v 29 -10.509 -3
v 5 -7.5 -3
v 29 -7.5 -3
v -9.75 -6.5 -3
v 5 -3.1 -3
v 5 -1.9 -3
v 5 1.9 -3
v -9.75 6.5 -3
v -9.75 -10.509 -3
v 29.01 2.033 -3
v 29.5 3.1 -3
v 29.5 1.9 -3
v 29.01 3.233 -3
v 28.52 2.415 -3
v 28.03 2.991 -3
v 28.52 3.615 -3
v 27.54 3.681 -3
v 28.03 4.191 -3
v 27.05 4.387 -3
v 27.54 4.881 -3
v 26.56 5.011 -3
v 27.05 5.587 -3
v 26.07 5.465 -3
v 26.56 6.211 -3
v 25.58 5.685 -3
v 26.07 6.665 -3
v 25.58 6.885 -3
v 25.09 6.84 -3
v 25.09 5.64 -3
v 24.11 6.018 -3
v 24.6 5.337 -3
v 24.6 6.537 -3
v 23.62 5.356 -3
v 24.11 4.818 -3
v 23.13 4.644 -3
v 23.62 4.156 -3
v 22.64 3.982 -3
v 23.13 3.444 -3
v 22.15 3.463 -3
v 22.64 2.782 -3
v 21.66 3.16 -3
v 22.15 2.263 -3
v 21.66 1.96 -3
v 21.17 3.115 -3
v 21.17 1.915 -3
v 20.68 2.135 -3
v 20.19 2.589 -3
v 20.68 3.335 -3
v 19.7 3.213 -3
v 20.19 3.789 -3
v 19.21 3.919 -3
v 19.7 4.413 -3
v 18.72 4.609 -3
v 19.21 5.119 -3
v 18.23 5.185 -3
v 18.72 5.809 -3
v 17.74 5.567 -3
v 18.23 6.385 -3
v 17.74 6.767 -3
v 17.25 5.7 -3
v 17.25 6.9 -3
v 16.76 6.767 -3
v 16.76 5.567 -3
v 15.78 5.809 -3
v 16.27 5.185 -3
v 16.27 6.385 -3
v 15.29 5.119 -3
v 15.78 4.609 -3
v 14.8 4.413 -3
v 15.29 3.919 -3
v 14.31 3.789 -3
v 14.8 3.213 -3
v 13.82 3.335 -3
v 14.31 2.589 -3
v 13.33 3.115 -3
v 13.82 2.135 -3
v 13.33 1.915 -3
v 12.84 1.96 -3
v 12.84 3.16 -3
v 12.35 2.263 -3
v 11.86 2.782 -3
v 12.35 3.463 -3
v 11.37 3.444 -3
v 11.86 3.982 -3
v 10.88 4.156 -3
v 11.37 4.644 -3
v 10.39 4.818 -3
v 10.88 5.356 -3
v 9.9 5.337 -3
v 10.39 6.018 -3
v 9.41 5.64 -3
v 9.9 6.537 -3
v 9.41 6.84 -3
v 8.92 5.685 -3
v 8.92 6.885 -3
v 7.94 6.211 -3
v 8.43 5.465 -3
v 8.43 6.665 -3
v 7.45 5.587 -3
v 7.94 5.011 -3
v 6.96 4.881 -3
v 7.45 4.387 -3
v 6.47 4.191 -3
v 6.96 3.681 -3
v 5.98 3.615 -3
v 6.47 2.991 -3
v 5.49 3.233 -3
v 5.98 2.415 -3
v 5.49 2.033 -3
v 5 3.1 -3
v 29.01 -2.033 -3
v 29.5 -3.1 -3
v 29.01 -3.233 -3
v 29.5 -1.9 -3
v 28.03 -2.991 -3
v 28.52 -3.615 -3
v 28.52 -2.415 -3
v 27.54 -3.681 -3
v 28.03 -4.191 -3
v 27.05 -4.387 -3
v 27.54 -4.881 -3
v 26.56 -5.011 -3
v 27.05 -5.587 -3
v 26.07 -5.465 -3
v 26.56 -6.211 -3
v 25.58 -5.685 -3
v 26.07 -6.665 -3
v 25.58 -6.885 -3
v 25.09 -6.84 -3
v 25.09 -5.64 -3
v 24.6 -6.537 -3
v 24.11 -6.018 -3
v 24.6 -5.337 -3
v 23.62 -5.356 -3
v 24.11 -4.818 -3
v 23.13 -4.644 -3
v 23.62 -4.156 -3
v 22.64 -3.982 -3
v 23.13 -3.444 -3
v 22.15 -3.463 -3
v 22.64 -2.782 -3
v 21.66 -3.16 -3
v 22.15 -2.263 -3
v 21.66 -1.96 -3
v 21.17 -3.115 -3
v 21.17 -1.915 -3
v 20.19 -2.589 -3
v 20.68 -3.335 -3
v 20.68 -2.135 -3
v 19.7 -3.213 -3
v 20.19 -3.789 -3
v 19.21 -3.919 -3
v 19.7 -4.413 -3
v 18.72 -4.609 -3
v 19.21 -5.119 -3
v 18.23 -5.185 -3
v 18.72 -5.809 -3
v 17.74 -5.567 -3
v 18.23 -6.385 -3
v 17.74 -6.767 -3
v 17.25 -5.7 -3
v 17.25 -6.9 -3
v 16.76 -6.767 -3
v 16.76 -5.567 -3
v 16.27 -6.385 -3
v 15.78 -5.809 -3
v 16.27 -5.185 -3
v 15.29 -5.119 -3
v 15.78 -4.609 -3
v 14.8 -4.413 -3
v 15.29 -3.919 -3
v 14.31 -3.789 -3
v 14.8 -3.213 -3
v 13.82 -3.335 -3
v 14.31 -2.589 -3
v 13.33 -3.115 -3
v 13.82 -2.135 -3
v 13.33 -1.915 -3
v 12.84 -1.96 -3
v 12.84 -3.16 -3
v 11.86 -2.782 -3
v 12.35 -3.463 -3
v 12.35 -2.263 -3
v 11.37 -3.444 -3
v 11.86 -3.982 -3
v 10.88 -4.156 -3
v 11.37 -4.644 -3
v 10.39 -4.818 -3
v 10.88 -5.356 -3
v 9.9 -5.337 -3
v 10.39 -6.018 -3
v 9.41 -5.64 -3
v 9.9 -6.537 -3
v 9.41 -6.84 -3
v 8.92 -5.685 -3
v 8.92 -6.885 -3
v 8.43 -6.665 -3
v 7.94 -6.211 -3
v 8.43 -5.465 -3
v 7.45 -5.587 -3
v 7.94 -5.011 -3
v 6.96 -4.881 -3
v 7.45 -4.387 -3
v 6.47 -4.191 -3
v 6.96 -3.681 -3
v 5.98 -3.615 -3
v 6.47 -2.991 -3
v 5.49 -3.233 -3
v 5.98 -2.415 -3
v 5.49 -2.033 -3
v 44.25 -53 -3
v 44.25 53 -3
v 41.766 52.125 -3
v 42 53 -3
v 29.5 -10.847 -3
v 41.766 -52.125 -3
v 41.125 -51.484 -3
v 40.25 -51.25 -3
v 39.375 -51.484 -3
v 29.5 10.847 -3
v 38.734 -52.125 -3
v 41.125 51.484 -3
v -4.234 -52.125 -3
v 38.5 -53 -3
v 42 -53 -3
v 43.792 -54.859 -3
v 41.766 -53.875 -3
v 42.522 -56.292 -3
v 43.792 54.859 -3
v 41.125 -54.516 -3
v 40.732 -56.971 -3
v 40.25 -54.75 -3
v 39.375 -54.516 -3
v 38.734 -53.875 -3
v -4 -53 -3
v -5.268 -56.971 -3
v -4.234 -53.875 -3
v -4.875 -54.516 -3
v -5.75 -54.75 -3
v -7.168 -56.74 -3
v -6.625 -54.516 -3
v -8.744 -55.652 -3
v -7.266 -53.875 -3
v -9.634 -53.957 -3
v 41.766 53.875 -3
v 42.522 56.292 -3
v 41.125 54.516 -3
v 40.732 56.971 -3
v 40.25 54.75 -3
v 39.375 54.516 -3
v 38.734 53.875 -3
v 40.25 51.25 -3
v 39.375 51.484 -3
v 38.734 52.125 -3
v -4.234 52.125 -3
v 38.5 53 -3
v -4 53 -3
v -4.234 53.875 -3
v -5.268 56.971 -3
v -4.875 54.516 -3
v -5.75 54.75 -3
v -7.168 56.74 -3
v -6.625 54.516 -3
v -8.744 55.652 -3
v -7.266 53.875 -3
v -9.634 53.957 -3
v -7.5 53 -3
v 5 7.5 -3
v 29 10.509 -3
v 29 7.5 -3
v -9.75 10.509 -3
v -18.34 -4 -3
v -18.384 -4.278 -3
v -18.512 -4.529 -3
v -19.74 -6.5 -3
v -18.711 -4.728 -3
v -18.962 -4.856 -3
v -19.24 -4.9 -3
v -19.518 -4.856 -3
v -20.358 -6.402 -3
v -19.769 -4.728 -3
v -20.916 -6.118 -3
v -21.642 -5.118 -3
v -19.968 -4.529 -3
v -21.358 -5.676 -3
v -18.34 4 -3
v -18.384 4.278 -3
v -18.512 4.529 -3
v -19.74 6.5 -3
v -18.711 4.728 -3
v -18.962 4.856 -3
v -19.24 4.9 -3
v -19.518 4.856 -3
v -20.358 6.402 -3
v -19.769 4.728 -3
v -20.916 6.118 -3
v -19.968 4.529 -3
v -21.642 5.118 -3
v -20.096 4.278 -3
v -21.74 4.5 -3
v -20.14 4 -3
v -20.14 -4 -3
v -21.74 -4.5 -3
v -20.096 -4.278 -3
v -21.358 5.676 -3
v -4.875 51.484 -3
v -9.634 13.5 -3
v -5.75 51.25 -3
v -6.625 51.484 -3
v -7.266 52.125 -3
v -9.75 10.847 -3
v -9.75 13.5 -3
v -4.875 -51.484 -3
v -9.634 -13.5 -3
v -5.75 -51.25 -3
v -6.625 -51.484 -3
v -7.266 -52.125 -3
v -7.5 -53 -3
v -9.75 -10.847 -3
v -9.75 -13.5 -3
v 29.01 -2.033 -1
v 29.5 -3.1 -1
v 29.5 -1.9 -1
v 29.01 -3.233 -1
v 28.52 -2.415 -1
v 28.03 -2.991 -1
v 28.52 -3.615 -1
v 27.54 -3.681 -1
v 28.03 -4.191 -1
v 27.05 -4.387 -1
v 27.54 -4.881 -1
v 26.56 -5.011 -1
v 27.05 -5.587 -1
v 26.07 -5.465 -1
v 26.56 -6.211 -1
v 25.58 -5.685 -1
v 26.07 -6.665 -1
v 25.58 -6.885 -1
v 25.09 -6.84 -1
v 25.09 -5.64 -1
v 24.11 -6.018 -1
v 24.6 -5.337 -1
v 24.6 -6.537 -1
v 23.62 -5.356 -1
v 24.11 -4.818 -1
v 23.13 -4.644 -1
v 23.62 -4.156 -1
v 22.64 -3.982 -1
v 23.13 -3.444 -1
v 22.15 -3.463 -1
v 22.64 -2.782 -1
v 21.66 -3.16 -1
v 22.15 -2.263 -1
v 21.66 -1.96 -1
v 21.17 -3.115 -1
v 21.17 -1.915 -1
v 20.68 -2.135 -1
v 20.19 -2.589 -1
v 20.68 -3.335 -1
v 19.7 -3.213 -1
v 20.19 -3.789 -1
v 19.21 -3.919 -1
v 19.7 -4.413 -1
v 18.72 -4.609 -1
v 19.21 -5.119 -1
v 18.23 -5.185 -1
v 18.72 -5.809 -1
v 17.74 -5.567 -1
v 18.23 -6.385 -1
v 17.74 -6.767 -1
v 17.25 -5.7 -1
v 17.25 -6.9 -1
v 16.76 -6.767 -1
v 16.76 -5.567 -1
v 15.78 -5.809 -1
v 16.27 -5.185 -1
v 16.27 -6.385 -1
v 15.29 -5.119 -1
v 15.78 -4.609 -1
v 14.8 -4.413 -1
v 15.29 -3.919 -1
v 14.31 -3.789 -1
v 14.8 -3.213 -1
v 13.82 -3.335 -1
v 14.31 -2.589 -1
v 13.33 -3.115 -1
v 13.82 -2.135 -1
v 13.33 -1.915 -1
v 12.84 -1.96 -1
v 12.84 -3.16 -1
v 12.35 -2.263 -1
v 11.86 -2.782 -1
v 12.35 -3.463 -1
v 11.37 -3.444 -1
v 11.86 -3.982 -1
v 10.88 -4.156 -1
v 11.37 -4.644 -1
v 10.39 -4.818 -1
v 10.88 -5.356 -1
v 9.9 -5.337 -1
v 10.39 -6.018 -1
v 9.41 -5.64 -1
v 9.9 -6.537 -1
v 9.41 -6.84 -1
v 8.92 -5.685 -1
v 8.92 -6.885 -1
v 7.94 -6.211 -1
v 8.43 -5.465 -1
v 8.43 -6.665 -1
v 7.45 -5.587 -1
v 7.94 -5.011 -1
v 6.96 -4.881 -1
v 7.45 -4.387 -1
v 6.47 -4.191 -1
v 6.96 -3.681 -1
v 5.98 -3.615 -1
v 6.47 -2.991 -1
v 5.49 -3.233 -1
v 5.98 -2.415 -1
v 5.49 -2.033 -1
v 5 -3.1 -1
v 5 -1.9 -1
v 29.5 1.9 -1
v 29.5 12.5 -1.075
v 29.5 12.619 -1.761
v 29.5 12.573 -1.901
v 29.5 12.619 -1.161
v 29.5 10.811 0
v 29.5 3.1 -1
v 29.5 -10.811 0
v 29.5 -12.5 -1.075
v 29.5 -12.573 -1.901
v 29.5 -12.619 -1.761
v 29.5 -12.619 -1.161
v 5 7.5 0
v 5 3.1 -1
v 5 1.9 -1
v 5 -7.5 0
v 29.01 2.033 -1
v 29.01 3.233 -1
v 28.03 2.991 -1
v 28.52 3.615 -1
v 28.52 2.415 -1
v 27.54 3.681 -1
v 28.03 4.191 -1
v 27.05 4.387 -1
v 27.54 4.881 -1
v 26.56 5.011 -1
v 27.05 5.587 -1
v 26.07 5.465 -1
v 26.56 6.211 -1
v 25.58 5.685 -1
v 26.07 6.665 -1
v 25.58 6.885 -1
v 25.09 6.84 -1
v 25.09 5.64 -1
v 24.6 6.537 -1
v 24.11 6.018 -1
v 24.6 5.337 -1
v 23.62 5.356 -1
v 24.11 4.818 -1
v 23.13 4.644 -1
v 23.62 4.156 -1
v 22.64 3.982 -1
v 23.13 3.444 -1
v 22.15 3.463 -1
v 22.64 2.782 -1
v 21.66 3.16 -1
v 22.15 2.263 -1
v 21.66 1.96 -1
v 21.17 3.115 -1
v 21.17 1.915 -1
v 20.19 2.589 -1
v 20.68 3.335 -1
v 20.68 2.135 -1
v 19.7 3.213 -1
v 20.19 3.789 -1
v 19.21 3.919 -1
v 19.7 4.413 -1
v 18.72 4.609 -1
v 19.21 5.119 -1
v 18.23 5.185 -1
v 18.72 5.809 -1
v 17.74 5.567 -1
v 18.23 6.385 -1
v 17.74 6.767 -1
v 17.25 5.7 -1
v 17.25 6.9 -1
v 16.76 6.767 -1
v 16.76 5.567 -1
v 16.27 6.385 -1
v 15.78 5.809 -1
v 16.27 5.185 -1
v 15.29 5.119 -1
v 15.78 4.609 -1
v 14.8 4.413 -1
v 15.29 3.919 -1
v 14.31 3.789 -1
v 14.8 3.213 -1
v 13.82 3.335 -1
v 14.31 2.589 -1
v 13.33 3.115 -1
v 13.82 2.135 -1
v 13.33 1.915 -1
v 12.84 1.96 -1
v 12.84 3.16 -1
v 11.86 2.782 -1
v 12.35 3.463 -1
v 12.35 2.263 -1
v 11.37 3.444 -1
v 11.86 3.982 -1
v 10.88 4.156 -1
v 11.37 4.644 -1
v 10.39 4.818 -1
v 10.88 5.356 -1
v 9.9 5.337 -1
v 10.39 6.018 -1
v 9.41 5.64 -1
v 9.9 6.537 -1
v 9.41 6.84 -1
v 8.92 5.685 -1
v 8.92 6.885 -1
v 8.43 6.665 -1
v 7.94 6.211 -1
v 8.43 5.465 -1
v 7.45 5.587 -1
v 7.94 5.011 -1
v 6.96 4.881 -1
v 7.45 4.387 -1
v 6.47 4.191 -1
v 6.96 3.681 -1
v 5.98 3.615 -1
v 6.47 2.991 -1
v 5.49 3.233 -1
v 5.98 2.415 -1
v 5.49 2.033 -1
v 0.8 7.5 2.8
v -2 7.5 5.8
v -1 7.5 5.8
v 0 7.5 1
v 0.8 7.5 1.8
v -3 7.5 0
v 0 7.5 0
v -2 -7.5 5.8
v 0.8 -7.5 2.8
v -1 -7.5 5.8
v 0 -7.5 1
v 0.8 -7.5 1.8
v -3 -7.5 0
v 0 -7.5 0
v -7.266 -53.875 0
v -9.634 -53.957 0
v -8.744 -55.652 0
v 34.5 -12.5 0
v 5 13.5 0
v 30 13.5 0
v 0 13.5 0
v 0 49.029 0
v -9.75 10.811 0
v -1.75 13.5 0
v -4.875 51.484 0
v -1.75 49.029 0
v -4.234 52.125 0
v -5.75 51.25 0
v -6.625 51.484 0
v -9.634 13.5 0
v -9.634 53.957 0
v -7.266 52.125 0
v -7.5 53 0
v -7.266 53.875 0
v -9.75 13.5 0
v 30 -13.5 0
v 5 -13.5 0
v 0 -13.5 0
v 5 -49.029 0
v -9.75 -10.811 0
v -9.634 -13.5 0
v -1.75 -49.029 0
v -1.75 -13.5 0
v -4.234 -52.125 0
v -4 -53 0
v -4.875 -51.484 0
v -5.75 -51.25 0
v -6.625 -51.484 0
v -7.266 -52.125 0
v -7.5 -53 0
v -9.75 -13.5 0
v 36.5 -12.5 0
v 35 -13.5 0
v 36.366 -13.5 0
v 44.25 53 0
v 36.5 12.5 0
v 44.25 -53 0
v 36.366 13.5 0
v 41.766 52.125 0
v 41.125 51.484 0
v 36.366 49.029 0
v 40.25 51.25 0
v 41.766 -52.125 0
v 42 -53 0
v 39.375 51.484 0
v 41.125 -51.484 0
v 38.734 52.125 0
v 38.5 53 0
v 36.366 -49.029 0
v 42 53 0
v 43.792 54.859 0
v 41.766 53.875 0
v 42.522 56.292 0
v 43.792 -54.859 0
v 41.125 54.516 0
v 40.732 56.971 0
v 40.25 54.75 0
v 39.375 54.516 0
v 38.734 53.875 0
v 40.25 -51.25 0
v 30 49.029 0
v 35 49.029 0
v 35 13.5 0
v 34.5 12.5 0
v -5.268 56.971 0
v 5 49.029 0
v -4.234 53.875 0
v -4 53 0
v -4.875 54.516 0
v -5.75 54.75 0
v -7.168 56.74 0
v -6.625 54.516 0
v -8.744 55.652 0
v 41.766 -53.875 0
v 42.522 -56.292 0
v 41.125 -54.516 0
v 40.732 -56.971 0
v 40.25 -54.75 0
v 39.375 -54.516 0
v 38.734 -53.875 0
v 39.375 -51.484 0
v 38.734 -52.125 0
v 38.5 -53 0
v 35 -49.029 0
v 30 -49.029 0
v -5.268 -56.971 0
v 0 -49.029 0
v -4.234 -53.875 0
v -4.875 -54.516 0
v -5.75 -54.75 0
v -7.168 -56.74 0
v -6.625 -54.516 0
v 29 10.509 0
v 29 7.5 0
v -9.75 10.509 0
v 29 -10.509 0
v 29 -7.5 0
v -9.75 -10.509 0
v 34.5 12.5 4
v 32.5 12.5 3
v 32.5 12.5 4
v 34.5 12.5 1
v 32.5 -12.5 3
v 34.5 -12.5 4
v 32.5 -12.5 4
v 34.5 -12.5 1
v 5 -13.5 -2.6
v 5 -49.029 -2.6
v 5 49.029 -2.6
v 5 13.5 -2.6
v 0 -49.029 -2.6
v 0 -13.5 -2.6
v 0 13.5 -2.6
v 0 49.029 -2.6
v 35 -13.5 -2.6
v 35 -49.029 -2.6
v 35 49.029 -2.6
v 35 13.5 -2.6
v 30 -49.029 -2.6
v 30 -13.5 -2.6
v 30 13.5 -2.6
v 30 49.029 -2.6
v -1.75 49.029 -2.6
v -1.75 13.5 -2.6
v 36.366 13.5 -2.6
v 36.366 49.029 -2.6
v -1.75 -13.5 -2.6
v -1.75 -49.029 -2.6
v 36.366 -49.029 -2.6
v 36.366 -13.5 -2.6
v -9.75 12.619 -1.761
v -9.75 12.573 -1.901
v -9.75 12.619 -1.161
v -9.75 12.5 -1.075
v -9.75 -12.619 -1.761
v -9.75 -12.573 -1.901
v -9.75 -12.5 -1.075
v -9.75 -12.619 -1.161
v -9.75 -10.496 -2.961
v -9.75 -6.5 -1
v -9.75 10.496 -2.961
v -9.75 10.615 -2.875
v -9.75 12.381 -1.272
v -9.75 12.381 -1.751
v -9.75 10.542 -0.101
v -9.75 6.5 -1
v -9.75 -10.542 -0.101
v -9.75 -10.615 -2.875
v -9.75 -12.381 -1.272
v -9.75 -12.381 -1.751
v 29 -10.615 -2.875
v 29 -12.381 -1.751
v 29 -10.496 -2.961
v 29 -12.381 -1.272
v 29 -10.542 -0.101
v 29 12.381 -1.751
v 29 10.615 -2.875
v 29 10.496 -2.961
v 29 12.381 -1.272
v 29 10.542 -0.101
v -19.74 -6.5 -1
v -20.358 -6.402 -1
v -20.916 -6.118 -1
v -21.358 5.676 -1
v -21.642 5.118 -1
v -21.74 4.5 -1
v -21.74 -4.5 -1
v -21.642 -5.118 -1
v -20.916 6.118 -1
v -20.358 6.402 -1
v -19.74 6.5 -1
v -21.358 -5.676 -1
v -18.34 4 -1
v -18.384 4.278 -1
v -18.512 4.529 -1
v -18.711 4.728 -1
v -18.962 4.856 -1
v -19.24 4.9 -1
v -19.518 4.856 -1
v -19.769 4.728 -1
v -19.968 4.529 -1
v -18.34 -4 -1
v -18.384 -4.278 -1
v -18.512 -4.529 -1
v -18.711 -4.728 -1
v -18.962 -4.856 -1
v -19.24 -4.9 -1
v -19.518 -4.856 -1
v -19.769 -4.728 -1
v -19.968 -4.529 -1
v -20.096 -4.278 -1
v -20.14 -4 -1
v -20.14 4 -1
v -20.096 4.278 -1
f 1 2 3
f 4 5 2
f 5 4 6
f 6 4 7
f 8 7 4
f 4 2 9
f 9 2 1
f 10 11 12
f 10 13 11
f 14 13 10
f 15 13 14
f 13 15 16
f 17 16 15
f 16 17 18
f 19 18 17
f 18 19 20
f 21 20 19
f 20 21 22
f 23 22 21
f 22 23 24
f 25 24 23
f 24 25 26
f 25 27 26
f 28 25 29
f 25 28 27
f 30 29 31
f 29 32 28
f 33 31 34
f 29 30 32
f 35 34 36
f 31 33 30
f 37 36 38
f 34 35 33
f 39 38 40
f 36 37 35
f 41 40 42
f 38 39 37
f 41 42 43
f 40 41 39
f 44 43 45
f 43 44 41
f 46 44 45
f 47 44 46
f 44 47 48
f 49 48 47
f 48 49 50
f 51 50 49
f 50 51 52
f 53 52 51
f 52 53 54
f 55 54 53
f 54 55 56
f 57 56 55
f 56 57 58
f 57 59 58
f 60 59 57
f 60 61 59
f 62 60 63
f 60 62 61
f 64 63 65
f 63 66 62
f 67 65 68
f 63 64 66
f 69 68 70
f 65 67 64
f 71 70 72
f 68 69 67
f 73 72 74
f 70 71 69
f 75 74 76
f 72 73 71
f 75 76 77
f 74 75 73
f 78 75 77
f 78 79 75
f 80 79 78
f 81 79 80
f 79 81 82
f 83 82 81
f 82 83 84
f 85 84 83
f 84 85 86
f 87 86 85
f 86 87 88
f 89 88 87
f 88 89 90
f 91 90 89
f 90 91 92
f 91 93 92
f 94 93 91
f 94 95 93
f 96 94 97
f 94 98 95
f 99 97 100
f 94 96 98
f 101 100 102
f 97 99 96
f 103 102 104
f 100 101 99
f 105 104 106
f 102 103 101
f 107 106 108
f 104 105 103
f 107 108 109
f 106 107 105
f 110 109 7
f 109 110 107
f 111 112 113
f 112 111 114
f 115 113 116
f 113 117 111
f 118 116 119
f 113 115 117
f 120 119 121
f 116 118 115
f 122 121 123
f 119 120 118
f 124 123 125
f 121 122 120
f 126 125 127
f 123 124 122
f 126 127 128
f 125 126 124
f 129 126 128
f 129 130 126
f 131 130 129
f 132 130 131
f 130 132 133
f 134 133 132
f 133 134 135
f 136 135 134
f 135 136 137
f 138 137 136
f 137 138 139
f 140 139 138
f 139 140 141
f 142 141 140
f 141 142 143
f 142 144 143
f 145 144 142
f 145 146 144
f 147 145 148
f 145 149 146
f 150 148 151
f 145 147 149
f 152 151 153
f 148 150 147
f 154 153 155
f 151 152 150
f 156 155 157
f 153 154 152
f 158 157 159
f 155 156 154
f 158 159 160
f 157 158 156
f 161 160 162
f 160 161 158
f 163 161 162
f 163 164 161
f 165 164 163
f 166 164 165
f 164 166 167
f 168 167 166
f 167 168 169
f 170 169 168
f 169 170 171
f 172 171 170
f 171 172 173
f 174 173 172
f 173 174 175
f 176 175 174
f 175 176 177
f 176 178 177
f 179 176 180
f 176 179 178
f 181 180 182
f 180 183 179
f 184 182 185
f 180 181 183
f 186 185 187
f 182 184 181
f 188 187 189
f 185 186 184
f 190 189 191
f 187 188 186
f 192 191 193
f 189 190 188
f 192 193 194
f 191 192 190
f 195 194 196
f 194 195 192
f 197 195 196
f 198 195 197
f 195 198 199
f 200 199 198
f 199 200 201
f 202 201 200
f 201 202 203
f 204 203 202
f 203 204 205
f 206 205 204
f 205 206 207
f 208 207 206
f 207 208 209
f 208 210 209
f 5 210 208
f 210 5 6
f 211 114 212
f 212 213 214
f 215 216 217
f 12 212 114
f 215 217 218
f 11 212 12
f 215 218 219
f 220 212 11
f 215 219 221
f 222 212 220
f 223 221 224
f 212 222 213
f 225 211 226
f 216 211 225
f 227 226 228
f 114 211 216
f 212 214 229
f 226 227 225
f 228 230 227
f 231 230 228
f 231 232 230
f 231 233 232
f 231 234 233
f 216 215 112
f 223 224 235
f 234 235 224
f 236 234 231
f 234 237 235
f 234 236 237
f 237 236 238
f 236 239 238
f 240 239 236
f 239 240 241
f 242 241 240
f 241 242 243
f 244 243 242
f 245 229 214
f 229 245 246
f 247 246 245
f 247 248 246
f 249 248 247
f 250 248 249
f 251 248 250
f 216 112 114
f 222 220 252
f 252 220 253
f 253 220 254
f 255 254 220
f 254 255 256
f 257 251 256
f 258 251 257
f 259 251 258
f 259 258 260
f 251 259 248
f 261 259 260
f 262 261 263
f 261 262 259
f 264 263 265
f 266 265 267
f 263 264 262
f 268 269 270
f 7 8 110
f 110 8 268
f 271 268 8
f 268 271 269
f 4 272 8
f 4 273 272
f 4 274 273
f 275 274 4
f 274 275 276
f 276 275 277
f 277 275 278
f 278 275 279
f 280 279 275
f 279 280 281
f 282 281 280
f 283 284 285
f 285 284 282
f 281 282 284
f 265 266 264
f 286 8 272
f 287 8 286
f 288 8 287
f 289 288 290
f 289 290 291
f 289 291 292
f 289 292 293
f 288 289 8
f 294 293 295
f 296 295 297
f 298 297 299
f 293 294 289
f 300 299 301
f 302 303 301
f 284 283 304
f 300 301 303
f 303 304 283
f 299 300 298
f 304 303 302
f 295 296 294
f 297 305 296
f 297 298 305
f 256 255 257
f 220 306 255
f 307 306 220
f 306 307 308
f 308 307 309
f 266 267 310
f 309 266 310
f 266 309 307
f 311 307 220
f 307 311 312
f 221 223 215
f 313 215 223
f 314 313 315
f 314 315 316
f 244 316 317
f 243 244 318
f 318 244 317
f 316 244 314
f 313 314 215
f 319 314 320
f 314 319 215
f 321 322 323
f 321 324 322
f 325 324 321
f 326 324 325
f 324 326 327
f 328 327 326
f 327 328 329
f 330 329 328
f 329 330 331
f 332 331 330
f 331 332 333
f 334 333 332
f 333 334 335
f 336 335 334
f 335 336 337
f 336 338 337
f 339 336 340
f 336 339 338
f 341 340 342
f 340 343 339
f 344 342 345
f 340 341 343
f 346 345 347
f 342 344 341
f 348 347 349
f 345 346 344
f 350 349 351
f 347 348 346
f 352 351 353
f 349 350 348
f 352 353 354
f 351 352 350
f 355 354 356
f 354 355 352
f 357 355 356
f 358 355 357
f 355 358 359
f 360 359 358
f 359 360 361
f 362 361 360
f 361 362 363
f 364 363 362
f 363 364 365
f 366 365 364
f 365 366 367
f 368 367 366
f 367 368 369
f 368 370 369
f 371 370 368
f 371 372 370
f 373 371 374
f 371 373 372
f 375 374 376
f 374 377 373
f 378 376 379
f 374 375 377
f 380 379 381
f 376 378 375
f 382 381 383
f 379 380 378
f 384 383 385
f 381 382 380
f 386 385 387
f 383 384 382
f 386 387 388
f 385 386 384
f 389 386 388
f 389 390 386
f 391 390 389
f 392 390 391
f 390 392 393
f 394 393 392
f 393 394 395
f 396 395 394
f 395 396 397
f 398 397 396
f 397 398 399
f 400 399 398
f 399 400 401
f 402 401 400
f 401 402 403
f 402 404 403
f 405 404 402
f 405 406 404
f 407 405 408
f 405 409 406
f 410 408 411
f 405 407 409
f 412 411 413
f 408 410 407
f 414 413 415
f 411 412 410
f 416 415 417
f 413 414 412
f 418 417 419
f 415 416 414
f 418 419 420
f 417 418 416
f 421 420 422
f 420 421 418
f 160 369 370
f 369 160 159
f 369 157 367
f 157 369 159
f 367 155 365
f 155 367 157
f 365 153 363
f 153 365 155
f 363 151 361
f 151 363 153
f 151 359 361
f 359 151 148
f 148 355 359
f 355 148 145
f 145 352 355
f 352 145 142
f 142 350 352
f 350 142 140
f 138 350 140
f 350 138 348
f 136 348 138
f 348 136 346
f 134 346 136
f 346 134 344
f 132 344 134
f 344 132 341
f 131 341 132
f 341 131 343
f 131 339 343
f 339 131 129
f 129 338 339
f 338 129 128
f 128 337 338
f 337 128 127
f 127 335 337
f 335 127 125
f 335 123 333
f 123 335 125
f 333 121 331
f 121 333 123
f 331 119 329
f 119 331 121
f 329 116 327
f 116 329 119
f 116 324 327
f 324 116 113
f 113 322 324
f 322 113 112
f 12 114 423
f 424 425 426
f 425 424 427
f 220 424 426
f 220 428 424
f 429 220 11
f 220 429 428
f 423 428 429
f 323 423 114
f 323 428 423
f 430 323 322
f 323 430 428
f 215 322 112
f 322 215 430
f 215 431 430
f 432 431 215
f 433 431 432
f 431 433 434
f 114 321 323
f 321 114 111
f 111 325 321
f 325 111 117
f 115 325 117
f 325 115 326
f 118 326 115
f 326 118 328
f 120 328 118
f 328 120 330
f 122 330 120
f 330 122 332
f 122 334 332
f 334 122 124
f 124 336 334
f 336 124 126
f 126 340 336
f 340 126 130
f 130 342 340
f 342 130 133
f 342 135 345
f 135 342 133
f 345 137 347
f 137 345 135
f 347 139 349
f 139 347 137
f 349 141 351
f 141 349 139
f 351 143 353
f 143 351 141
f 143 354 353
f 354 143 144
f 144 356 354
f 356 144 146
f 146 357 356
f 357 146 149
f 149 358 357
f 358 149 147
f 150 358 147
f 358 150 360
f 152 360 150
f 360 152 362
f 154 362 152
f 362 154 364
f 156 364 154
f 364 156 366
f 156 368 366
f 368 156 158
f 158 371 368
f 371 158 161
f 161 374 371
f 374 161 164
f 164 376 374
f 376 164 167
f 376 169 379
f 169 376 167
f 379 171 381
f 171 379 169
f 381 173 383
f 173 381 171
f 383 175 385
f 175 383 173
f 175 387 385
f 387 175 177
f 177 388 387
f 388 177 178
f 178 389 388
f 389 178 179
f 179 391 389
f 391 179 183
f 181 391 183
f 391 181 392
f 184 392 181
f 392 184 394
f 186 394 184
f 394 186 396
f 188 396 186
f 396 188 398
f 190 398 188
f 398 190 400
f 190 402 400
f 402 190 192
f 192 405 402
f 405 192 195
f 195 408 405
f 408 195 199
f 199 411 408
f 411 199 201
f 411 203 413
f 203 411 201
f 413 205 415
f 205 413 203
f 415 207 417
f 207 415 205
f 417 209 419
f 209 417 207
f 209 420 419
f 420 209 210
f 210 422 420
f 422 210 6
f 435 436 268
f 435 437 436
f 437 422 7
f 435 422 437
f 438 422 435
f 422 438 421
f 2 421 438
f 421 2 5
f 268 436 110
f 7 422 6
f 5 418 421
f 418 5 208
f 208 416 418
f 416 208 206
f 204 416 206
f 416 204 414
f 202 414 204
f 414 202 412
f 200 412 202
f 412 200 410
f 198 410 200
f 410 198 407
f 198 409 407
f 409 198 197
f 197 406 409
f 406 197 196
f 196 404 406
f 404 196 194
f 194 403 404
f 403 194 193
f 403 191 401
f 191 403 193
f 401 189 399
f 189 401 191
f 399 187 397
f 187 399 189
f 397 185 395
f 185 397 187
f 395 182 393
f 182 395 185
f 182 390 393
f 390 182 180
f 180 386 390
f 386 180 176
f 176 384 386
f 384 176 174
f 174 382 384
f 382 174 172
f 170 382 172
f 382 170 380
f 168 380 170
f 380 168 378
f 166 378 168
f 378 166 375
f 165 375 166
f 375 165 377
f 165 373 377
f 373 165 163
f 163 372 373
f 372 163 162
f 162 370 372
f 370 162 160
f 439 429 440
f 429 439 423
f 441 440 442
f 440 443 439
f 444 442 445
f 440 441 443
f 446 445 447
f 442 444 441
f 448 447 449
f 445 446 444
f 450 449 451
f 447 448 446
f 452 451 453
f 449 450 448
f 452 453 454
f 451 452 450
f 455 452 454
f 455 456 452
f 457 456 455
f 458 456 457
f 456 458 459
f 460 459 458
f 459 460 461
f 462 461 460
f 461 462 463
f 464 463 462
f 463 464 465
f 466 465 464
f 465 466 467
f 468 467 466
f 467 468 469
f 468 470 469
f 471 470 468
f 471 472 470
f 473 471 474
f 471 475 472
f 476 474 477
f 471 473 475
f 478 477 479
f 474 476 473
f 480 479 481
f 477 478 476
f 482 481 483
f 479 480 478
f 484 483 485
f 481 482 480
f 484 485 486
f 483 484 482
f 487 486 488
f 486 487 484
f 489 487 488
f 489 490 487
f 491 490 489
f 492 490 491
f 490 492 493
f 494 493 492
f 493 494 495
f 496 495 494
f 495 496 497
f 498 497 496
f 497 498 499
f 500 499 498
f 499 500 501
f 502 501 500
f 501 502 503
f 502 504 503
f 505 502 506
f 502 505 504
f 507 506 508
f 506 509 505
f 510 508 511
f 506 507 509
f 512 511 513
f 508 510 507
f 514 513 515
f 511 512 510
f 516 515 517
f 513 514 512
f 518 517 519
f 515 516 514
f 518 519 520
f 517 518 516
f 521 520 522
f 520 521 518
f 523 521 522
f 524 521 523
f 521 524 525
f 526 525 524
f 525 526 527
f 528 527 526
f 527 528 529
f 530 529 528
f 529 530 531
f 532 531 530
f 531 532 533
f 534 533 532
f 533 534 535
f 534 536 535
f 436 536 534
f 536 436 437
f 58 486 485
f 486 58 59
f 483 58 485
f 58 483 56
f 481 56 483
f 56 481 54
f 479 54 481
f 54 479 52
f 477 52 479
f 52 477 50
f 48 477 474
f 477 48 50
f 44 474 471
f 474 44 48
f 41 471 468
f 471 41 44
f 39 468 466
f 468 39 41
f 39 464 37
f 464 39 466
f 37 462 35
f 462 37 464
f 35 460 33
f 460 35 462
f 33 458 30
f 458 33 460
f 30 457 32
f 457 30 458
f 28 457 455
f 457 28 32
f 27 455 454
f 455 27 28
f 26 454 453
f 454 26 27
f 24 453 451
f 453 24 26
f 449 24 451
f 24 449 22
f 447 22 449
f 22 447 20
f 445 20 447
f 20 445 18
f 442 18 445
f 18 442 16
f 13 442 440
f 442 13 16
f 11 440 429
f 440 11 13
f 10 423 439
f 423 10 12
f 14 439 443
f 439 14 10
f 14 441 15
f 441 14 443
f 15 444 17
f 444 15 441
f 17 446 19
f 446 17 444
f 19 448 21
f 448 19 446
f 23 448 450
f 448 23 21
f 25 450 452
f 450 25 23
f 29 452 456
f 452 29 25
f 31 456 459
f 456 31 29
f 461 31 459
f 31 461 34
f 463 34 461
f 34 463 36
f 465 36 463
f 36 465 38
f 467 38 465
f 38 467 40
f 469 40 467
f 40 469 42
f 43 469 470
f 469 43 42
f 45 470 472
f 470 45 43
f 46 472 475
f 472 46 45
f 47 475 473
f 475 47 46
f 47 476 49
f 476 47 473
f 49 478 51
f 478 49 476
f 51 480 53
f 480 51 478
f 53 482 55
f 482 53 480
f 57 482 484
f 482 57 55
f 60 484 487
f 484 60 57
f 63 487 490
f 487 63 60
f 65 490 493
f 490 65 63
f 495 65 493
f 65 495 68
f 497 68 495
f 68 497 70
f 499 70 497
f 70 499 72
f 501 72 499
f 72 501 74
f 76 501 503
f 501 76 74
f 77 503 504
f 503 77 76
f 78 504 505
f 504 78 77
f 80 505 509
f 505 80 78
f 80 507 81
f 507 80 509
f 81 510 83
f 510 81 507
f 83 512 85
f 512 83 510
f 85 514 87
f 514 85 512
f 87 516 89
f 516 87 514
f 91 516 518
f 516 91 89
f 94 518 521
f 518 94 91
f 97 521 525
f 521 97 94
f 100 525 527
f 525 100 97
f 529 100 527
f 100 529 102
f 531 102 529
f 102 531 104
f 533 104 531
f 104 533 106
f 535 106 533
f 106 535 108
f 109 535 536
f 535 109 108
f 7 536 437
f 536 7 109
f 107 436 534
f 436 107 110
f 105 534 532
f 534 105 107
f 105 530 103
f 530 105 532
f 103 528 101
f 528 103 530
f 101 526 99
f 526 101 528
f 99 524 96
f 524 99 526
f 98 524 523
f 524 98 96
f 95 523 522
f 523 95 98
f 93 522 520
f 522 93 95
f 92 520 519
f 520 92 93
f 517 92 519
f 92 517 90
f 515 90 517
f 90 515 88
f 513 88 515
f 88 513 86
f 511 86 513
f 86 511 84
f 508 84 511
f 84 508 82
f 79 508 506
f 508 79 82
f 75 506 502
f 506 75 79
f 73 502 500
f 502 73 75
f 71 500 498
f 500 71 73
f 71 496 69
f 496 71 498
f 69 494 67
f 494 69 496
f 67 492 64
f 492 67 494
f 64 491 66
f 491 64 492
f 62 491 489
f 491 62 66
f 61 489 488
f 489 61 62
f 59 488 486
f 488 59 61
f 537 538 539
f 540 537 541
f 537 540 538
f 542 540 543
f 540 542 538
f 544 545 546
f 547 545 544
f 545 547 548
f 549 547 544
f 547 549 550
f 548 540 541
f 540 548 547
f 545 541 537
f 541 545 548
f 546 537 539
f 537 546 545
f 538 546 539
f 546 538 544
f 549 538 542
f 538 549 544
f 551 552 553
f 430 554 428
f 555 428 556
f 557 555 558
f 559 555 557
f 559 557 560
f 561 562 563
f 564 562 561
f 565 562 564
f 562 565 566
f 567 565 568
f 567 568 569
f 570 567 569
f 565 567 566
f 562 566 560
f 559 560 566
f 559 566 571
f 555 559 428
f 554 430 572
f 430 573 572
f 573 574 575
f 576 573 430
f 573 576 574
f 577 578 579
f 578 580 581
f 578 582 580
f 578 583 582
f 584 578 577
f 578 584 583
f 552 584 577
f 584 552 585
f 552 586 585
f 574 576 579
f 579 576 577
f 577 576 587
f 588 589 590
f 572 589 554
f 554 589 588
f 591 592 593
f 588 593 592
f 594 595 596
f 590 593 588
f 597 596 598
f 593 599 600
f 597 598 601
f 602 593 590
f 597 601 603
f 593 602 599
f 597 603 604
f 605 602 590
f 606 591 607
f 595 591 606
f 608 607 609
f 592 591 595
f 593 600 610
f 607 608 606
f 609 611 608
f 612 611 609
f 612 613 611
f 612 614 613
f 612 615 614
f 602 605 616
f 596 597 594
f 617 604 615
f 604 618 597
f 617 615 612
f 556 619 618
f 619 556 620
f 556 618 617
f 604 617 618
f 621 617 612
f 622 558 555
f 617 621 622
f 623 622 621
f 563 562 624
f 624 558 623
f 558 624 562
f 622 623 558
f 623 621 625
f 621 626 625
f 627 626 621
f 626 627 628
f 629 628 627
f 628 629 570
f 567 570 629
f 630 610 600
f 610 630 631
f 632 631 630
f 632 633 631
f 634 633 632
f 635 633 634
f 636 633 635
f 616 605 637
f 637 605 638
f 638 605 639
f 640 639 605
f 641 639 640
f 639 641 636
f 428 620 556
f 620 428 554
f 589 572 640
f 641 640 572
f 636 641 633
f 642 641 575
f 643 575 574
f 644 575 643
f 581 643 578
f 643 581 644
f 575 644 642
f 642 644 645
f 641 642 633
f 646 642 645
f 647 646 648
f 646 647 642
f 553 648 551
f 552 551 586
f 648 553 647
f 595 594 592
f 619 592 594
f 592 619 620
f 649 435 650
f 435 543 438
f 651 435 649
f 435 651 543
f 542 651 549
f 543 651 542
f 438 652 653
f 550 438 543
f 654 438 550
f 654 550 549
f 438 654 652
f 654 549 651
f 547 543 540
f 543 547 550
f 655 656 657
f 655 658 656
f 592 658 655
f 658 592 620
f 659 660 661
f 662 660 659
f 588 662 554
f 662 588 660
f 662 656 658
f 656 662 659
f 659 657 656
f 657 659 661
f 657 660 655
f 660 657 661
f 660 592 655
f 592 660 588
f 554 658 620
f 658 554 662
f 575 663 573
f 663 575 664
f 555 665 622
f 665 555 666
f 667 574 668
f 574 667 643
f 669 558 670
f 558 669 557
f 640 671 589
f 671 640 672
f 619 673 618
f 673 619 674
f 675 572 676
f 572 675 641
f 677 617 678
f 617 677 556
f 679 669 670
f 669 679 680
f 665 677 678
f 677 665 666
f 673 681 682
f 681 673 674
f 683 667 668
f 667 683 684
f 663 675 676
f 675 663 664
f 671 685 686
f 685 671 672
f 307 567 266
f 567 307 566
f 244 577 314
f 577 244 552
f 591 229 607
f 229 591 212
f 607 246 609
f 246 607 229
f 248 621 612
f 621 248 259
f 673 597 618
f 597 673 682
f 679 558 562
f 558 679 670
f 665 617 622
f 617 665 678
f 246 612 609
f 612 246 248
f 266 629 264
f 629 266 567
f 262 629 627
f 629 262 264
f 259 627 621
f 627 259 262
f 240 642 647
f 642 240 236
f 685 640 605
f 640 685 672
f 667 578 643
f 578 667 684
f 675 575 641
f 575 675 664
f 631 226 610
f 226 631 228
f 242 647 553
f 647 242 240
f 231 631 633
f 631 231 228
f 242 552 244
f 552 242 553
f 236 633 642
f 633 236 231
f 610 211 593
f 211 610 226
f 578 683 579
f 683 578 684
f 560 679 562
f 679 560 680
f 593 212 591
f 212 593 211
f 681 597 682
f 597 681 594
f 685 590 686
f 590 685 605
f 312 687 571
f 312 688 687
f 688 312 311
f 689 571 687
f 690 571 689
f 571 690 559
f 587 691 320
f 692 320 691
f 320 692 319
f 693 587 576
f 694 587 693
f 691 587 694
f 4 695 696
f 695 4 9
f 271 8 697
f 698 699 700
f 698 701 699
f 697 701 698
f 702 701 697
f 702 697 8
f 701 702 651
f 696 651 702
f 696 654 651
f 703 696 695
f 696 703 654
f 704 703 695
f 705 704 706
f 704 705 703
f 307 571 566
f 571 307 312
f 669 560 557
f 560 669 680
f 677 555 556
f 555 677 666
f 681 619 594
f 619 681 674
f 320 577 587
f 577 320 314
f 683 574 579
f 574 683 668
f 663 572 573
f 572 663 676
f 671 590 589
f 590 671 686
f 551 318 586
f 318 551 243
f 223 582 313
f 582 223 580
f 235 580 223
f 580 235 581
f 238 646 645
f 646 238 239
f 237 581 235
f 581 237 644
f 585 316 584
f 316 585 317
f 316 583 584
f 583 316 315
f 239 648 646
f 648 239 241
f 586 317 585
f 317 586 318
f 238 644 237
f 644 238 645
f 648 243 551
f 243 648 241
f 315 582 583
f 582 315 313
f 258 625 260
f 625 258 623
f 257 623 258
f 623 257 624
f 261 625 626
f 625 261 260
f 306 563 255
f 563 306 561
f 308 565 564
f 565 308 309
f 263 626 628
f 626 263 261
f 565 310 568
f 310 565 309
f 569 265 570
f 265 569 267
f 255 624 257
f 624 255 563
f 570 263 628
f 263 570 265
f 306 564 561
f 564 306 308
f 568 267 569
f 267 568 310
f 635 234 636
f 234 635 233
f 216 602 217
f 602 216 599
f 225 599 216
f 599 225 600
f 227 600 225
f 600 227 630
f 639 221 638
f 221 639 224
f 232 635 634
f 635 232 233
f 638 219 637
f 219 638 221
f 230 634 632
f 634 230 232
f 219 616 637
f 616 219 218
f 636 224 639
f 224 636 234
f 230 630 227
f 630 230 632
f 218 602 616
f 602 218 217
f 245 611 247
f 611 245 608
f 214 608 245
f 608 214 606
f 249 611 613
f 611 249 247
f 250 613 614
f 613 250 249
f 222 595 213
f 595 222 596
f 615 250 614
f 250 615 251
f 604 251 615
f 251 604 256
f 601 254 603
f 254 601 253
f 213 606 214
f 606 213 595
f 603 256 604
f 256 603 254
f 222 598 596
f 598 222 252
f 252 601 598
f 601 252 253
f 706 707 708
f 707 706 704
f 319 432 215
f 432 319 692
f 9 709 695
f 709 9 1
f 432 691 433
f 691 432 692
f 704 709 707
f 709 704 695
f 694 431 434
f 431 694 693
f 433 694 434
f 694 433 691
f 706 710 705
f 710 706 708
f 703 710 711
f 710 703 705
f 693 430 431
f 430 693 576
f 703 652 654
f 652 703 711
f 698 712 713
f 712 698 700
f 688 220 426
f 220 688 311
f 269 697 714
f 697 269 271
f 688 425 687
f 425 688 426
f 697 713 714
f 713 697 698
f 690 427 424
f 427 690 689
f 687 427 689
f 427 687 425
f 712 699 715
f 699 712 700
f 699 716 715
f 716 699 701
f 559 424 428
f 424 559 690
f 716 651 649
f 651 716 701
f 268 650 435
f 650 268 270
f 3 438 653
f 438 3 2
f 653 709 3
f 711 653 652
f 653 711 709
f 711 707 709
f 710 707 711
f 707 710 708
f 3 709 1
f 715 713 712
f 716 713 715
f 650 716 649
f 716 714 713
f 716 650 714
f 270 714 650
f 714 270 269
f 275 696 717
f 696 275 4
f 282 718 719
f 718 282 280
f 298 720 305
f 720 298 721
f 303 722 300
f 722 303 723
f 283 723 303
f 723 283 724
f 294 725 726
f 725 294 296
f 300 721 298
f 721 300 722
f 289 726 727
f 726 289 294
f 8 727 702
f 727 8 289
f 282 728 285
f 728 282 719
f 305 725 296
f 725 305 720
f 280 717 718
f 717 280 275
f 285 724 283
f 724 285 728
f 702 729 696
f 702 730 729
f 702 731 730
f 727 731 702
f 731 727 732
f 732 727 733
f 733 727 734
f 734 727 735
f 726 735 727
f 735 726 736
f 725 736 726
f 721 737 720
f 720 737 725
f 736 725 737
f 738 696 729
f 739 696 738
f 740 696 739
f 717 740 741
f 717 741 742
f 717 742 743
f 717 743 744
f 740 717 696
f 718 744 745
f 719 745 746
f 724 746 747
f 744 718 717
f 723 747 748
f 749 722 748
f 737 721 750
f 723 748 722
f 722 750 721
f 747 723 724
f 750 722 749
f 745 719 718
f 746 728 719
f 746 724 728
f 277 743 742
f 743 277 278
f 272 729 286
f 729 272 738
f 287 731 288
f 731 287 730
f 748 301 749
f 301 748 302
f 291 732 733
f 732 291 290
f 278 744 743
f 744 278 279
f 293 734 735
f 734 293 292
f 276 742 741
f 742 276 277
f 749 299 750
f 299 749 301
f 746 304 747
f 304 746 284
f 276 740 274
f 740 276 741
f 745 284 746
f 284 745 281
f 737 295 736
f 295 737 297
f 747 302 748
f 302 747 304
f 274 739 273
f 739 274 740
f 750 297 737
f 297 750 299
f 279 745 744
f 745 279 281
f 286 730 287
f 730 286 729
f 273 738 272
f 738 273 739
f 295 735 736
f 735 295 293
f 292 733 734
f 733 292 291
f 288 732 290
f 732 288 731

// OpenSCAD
// -*- mode: scad; c-basic-offset: 2; indent-tabs-mode: nil; -*-
// (c) h.zeller@acm.org License: CC-BY-SA
e=0.01;

with_frame=true;             // The mounting frame
with_isolation=true;         // isolation layer in frame
with_spring_cover=false;     // covering the spring with cover (needs bridging)
with_whole_width_rest=true;  // rest on din-rail for whole length.
lug_len=10;            // Length of the lug used pull down to remove from rail

// Size of the hole-pattern for mounting.
screw_along  = 106;
screw_across = 46;
screw_bar=8;           // Width of the outer frame bar with screw holes
screw_dia=3.5;

bottom_thick=3;       // Thickness of whole underside frame
isolation_thick=0.4;  // Thickness of isolation bottom.

// These depend on the filament, needs experimentation for each filament.
spring_height=2;      // Needs to be < bottom_thick if with_spring_cover
spring_thick=1.2;

rest_shelf=5;         // The width of the area resting on the rail itself.
hold_wide=25;         // The width of the top 'hook' holding on the rail.
latch_wide=15;        // The width of the moveable clip at the bottom of rail.
slide_gap=0.25;       // In-place printed gap for clip to move.

// General sizing of the DIN rail. Essentially constants
din_wide=35;
din_dist=din_wide - 0.5; // Slightly smaller for more clamping action.
din_sheet=1;           // thickness of the din-rail metal

plate_x = screw_across + screw_bar;
plate_y = hold_wide + 2;

module hook_polygon(do_slide=false) {
  w=1;
  h=do_slide ? 0.8 : 2;
  ledge=1;
  hd=sqrt(2) * h;
  // TODO: doing both hook types in one do_slide-configured array is not
  // very readable and should be broken up into two.
  polygon([[-2*w, -bottom_thick], [0, -bottom_thick], [0, din_sheet],
           [h, h + din_sheet], [h, h + ledge + din_sheet],
           if (do_slide) [-1, h + ledge + din_sheet+3],
           if (do_slide) [-2, h + ledge + din_sheet+3],
           if (do_slide) [-3, 0],
           if (!do_slide) [0, h + ledge + din_sheet],
           [-2*w, 0],
           ]);
}

module hook(len=15, do_slide=false) {
  translate([0, len/2, 0]) rotate([90, 0, 0])
    linear_extrude(height=len) hook_polygon(do_slide);
}

module spring_polygon(len=20, wide=15, thick=1) {
  p=3;  // periods
  n=50;
  actual_w=wide/2 - thick/2;
  points = [
    for (i = [0:n]) [ len*i/n, actual_w*cos(i * p * 360 / n) + thick/2],
    for (i = [0:n]) [ len*(n-i)/n, actual_w*cos((n-i) * p * 360 / n) - thick/2],
  ];

  translate([0, -actual_w, 0]) polygon(points);
}

module spring(len=20, wide=15, thick=1, height=1) {
  linear_extrude(height=height) spring_polygon(len, wide, thick);
}

module spring_symmetric(len=20, wide=15, delta=5, thick=1, height=1) {
  half_w=wide/2-delta/2;
  translate([0, -delta/2, -bottom_thick]) spring(len, half_w, thick, height);
  scale([1, -1, 1]) translate([0, -delta/2, -bottom_thick])
    spring(len, half_w, thick, height);
}

module bottom_plate() {
  w = screw_along;
  h = screw_across;

  difference() {
    translate([din_dist/2, 0, -bottom_thick/2]) {
      cube([plate_x, plate_y, bottom_thick], center=true);

      if (with_frame) {
        if (with_isolation) {
          translate([-h/2, -w/2, -bottom_thick/2]) cube([h, w, isolation_thick]);
        }

        if (with_whole_width_rest) {
          translate([-din_dist/2, -w/2, -bottom_thick/2])
            cube([rest_shelf, w, bottom_thick]);
          translate([-din_dist/2 + din_wide - rest_shelf, -w/2, -bottom_thick/2])
            cube([rest_shelf, w, bottom_thick]);
        }

        // frame around. hull() joined cylinders making nice rounded corners.
        hull() {
          translate([h/2, w/2, -bottom_thick/2]) cylinder(r=screw_bar/2, h=bottom_thick);
          translate([-h/2, w/2, -bottom_thick/2]) cylinder(r=screw_bar/2, h=bottom_thick);
        }
        hull() {
          translate([h/2, -w/2, -bottom_thick/2]) cylinder(r=screw_bar/2, h=bottom_thick);
          translate([-h/2, -w/2, -bottom_thick/2]) cylinder(r=screw_bar/2, h=bottom_thick);
        }
        hull() {
          translate([-h/2, w/2, -bottom_thick/2]) cylinder(r=screw_bar/2, h=bottom_thick);
          translate([-h/2, -w/2, -bottom_thick/2]) cylinder(r=screw_bar/2, h=bottom_thick);
        }
        hull() {
          translate([h/2, w/2, -bottom_thick/2]) cylinder(r=screw_bar/2, h=bottom_thick);
          translate([h/2, -w/2, -bottom_thick/2]) cylinder(r=screw_bar/2, h=bottom_thick);
        }
      }
    }

    for (dx = [-1, 1]) {
      for (dy = [-1, 1]) {
        translate([din_dist/2+dx*h/2, dy*w/2, -bottom_thick-e]) cylinder(r=screw_dia/2, h=bottom_thick+2*e, $fn=12);
      }
    }
  }
}

module spring_latch() {
  hook(len=latch_wide, do_slide=true);

  translate([rest_shelf, 0, 0]) spring_symmetric(len=din_dist - 2*rest_shelf,
                                                 thick=spring_thick,
                                                 wide=latch_wide,
                                                 delta=5, height=spring_height);
}

module dovetail(h=2, gap=slide_gap, len=20) {
  c=h/10;  // center
  out=h/1.5;
  hull() {
    translate([-h/2, -gap/2+e, 0]) cylinder(r=gap/2, h=len);
    translate([-c, -out, 0]) cylinder(r=gap/2, h=len);
  }
  hull() {
    translate([-c, -out, 0]) cylinder(r=gap/2, h=len);
    translate([+c, -out, 0]) cylinder(r=gap/2, h=len);
  }
  hull() {
    translate([+c, -out, 0]) cylinder(r=gap/2, h=len);
    translate([+h/2, -gap/2+e, 0]) cylinder(r=gap/2, h=len);
  }
}

module one_slide(len=2, slide_wide=(plate_y-latch_wide)/4) {
  translate([din_dist-rest_shelf, -latch_wide/2-slide_wide, -bottom_thick/2])
    rotate([0, -90, 0]) dovetail(h=bottom_thick, len=len);
}

module spring_punch(skin=with_spring_cover ? isolation_thick : 0) {
  color("yellow") translate([rest_shelf, -latch_wide/2, -bottom_thick-e-skin])
    cube([din_dist-2*rest_shelf, latch_wide, bottom_thick+2*e]);
}

module punch() {
  spring_punch();  // Space for the spring.
  hull() {
    one_slide(len=0.5);
    scale([1, -1, 1]) one_slide(len=0.5);
  }
  one_slide(len=screw_across);
  scale([1, -1, 1]) one_slide(len=screw_across);
}

module open_pull_lug(h=2) {
  r=2;
  wide=6.5;  // half-wide. Good enough for pocket knife blade.
  translate([e, 0, -bottom_thick])
    difference() {
    hull() {
      translate([-lug_len, -wide, 0]) cube([lug_len, 2*wide, h]);
      translate([-lug_len, -wide+r, 0]) cylinder(r=r, h=h, $fn=20);
      translate([-lug_len, +wide-r, 0]) cylinder(r=r, h=h, $fn=20);
    }
    translate([0, 0, -e]) hull() {
      translate([-lug_len+0.5, -wide+0.5+r, 0]) cylinder(r=1.8/2, h=h+2*e, $fn=20);
      translate([-lug_len+0.5, +wide-0.5-r, 0]) cylinder(r=1.8/2, h=h+2*e, $fn=20);
    }
  }
}


// Hooks
module assembly_part_hooks() {
  // retainer hook
  translate([din_dist, 0, 0]) scale([-1, 1, 1]) hook(len=hold_wide);
  spring_latch();  // latching hook
}

module assembly_part_baseplate() {
  // Place to mount PCB etc.
  difference() {
      bottom_plate();
      punch();
    }
}

module assembly_part_pull() {
  // Make simple to open.
  translate([-(plate_x - din_dist)/2, 0, 0]) open_pull_lug();
}

assembly_part_hooks();
assembly_part_baseplate();
assembly_part_pull();
